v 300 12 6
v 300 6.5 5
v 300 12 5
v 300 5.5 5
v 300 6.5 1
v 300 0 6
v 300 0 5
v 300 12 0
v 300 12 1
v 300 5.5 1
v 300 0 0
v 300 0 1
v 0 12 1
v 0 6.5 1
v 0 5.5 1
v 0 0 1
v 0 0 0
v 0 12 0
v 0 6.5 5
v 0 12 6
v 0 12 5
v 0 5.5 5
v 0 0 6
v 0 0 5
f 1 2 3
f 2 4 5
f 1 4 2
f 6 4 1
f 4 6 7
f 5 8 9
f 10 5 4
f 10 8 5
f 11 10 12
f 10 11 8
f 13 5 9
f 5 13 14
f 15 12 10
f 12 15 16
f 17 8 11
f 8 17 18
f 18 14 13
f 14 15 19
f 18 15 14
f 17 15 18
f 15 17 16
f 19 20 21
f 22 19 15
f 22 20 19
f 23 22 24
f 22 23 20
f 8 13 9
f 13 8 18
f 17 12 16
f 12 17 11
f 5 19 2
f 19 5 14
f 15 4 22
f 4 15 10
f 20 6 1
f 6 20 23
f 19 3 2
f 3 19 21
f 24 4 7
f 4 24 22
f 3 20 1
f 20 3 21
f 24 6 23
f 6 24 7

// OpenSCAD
include <parameters.scad>

// Fixed H rail. Overlap is confined to the web ends; the two flange inner
// faces stay exactly at Z=wall and Z=depth-wall (4 mm apart for the new rail).
module rail_geometry(length=rail_length, height=rail_height,
                     depth=rail_depth_target, front_height=rail_front_height,
                     wall=wall_thickness, web=wall_thickness) {
    front_y0 = (height-front_height)/2;
    web_y0 = (height-web)/2;
    assert(length>0 && height>=front_height && front_height>web);
    assert(depth>2*wall && wall>join_overlap && web>0);
    union() {
        // Cabinet mounting base; its rear face is exactly Z=0.
        cube([length, height, wall]);

        // Central web. It overlaps the base and flange by join_overlap.
        translate([0, web_y0, wall-join_overlap])
            cube([length, web, depth-2*wall+2*join_overlap]);

        // Person-facing load flange.
        translate([0, front_y0, depth-wall])
            cube([length, front_height, wall]);
    }
}

module rail_section_preview(section_x=20) {
    intersection() {
        rail_geometry();
        translate([rail_length / 2 - section_x / 2, -1, -1])
            cube([section_x, rail_height + 2, rail_depth_target + 2]);
    }
}

// Standalone printable entry point. debug_section is intentionally a source
// inspection mode, not a modifier on the final print geometry.
if (debug_section)
    rail_section_preview();
else
    rail_geometry();
